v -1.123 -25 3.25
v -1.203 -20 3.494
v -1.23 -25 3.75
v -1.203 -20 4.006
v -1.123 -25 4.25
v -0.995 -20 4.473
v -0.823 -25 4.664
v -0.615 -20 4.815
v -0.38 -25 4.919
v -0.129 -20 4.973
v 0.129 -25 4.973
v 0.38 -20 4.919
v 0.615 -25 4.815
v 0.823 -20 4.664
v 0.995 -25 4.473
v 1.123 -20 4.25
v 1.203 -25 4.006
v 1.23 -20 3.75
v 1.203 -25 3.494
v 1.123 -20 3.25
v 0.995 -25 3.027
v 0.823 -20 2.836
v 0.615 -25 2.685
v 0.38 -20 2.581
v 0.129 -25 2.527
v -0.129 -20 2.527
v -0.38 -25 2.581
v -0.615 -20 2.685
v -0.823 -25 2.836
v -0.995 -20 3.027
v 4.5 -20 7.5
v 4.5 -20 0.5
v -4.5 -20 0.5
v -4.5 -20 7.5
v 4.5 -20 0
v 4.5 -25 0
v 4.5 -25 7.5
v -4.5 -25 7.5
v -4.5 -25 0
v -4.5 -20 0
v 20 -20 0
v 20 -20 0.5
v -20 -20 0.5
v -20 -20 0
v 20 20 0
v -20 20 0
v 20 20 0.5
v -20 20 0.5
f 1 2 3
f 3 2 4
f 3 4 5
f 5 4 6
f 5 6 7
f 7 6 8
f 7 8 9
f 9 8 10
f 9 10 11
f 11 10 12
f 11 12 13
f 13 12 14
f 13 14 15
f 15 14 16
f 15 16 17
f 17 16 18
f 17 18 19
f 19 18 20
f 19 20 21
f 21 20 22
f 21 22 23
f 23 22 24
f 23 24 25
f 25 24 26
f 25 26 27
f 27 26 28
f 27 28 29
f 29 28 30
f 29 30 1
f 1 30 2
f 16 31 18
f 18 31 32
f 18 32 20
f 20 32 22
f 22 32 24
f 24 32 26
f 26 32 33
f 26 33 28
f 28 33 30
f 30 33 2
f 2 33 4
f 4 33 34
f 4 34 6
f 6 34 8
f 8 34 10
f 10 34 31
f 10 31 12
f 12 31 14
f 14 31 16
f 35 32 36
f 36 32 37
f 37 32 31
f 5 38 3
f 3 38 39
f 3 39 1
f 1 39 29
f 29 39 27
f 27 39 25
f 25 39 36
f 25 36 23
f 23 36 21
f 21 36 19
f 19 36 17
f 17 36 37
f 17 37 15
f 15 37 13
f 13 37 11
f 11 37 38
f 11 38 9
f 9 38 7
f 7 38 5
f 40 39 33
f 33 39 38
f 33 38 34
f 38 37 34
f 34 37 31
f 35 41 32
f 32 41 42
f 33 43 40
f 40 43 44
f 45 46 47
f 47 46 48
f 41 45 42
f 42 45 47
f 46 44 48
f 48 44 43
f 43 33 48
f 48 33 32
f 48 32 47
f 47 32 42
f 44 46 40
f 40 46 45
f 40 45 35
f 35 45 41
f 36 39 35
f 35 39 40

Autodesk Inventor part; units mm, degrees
ref_plane "YZ Plane" through (0, 0, 0) normal (1, 0, 0) x (0, 1, 0)
ref_plane "XZ Plane" through (0, 0, 0) normal (0, 1, 0) x (-1, 0, 0)
ref_plane "XY Plane" through (0, 0, 0) normal (0, 0, 1) x (1, 0, 0)
sketch "Skizze1" plane through (0, 0, 0) normal (0, 0, 1) x (1, 0, 0)
  line L0 (-20, 20) -> (20, 20)
  line L1 (20, 20) -> (20, -20)
  line L2 (20, -20) -> (-20, -20)
  line L3 (-20, -20) -> (-20, 20)
  line L4 (0, 20) -> (0, -20)
  line L5 (-20, 0) -> (20, 0)
  point P0 (0, 0)
  point P1 (0, 0)
  point P2 (-20, 0)
  point P3 (0, 0)
  point P4 (20, 0)
  dimension "d1" = 40
  dimension "d2" = 40
extrude "Extrusion1" add sketch "Skizze1" along normal blind 0.5
sketch "Skizze2" plane through (0, 0, 0.5) normal (0, 0, 1) x (1, 0, 0)
  line L0 (-20, -20) -> (20, -20) projected
  line L1 (-4.5, -20) -> (4.5, -20)
  line L2 (4.5, -20) -> (4.5, -25)
  line L3 (4.5, -25) -> (-4.5, -25)
  line L4 (-4.5, -25) -> (-4.5, -20)
  line L5 (0, -20) -> (0, -25)
  point P0 (0, 0)
  dimension "d5" = 5
  dimension "d6" = 9
extrude "Extrusion2" add sketch "Skizze2" along normal blind 7 and the other way blind 0.5
sketch "Skizze3" plane through (-4.5, -20, 0.5) normal (0, 1, 0) x (1, 0, 0)
  line L0 (0, -7) -> (0, 0) projected
  line L1 (9, 0.5) -> (0, 0.5) projected
  line L2 (0, -7) -> (9, 0.5)
  line L3 (9, 0.5) -> (9, -6.5)
  line L4 (9, -6.5) -> (0, 0)
  circle A0 centre (4.5, -3.25) radius 0.5388
  point P0 (4.5, 0.5)
  point P1 (0, 0.5)
hole "Bohrung1" at (0, -20, 3.75) direction (0, -1, 0) diameter 2.459 end through all thread size "M3x0.5" class "6H" standard "ISO Metric profile"
equation "\"d2\" = d1"
properties part number "basicdifuser"
